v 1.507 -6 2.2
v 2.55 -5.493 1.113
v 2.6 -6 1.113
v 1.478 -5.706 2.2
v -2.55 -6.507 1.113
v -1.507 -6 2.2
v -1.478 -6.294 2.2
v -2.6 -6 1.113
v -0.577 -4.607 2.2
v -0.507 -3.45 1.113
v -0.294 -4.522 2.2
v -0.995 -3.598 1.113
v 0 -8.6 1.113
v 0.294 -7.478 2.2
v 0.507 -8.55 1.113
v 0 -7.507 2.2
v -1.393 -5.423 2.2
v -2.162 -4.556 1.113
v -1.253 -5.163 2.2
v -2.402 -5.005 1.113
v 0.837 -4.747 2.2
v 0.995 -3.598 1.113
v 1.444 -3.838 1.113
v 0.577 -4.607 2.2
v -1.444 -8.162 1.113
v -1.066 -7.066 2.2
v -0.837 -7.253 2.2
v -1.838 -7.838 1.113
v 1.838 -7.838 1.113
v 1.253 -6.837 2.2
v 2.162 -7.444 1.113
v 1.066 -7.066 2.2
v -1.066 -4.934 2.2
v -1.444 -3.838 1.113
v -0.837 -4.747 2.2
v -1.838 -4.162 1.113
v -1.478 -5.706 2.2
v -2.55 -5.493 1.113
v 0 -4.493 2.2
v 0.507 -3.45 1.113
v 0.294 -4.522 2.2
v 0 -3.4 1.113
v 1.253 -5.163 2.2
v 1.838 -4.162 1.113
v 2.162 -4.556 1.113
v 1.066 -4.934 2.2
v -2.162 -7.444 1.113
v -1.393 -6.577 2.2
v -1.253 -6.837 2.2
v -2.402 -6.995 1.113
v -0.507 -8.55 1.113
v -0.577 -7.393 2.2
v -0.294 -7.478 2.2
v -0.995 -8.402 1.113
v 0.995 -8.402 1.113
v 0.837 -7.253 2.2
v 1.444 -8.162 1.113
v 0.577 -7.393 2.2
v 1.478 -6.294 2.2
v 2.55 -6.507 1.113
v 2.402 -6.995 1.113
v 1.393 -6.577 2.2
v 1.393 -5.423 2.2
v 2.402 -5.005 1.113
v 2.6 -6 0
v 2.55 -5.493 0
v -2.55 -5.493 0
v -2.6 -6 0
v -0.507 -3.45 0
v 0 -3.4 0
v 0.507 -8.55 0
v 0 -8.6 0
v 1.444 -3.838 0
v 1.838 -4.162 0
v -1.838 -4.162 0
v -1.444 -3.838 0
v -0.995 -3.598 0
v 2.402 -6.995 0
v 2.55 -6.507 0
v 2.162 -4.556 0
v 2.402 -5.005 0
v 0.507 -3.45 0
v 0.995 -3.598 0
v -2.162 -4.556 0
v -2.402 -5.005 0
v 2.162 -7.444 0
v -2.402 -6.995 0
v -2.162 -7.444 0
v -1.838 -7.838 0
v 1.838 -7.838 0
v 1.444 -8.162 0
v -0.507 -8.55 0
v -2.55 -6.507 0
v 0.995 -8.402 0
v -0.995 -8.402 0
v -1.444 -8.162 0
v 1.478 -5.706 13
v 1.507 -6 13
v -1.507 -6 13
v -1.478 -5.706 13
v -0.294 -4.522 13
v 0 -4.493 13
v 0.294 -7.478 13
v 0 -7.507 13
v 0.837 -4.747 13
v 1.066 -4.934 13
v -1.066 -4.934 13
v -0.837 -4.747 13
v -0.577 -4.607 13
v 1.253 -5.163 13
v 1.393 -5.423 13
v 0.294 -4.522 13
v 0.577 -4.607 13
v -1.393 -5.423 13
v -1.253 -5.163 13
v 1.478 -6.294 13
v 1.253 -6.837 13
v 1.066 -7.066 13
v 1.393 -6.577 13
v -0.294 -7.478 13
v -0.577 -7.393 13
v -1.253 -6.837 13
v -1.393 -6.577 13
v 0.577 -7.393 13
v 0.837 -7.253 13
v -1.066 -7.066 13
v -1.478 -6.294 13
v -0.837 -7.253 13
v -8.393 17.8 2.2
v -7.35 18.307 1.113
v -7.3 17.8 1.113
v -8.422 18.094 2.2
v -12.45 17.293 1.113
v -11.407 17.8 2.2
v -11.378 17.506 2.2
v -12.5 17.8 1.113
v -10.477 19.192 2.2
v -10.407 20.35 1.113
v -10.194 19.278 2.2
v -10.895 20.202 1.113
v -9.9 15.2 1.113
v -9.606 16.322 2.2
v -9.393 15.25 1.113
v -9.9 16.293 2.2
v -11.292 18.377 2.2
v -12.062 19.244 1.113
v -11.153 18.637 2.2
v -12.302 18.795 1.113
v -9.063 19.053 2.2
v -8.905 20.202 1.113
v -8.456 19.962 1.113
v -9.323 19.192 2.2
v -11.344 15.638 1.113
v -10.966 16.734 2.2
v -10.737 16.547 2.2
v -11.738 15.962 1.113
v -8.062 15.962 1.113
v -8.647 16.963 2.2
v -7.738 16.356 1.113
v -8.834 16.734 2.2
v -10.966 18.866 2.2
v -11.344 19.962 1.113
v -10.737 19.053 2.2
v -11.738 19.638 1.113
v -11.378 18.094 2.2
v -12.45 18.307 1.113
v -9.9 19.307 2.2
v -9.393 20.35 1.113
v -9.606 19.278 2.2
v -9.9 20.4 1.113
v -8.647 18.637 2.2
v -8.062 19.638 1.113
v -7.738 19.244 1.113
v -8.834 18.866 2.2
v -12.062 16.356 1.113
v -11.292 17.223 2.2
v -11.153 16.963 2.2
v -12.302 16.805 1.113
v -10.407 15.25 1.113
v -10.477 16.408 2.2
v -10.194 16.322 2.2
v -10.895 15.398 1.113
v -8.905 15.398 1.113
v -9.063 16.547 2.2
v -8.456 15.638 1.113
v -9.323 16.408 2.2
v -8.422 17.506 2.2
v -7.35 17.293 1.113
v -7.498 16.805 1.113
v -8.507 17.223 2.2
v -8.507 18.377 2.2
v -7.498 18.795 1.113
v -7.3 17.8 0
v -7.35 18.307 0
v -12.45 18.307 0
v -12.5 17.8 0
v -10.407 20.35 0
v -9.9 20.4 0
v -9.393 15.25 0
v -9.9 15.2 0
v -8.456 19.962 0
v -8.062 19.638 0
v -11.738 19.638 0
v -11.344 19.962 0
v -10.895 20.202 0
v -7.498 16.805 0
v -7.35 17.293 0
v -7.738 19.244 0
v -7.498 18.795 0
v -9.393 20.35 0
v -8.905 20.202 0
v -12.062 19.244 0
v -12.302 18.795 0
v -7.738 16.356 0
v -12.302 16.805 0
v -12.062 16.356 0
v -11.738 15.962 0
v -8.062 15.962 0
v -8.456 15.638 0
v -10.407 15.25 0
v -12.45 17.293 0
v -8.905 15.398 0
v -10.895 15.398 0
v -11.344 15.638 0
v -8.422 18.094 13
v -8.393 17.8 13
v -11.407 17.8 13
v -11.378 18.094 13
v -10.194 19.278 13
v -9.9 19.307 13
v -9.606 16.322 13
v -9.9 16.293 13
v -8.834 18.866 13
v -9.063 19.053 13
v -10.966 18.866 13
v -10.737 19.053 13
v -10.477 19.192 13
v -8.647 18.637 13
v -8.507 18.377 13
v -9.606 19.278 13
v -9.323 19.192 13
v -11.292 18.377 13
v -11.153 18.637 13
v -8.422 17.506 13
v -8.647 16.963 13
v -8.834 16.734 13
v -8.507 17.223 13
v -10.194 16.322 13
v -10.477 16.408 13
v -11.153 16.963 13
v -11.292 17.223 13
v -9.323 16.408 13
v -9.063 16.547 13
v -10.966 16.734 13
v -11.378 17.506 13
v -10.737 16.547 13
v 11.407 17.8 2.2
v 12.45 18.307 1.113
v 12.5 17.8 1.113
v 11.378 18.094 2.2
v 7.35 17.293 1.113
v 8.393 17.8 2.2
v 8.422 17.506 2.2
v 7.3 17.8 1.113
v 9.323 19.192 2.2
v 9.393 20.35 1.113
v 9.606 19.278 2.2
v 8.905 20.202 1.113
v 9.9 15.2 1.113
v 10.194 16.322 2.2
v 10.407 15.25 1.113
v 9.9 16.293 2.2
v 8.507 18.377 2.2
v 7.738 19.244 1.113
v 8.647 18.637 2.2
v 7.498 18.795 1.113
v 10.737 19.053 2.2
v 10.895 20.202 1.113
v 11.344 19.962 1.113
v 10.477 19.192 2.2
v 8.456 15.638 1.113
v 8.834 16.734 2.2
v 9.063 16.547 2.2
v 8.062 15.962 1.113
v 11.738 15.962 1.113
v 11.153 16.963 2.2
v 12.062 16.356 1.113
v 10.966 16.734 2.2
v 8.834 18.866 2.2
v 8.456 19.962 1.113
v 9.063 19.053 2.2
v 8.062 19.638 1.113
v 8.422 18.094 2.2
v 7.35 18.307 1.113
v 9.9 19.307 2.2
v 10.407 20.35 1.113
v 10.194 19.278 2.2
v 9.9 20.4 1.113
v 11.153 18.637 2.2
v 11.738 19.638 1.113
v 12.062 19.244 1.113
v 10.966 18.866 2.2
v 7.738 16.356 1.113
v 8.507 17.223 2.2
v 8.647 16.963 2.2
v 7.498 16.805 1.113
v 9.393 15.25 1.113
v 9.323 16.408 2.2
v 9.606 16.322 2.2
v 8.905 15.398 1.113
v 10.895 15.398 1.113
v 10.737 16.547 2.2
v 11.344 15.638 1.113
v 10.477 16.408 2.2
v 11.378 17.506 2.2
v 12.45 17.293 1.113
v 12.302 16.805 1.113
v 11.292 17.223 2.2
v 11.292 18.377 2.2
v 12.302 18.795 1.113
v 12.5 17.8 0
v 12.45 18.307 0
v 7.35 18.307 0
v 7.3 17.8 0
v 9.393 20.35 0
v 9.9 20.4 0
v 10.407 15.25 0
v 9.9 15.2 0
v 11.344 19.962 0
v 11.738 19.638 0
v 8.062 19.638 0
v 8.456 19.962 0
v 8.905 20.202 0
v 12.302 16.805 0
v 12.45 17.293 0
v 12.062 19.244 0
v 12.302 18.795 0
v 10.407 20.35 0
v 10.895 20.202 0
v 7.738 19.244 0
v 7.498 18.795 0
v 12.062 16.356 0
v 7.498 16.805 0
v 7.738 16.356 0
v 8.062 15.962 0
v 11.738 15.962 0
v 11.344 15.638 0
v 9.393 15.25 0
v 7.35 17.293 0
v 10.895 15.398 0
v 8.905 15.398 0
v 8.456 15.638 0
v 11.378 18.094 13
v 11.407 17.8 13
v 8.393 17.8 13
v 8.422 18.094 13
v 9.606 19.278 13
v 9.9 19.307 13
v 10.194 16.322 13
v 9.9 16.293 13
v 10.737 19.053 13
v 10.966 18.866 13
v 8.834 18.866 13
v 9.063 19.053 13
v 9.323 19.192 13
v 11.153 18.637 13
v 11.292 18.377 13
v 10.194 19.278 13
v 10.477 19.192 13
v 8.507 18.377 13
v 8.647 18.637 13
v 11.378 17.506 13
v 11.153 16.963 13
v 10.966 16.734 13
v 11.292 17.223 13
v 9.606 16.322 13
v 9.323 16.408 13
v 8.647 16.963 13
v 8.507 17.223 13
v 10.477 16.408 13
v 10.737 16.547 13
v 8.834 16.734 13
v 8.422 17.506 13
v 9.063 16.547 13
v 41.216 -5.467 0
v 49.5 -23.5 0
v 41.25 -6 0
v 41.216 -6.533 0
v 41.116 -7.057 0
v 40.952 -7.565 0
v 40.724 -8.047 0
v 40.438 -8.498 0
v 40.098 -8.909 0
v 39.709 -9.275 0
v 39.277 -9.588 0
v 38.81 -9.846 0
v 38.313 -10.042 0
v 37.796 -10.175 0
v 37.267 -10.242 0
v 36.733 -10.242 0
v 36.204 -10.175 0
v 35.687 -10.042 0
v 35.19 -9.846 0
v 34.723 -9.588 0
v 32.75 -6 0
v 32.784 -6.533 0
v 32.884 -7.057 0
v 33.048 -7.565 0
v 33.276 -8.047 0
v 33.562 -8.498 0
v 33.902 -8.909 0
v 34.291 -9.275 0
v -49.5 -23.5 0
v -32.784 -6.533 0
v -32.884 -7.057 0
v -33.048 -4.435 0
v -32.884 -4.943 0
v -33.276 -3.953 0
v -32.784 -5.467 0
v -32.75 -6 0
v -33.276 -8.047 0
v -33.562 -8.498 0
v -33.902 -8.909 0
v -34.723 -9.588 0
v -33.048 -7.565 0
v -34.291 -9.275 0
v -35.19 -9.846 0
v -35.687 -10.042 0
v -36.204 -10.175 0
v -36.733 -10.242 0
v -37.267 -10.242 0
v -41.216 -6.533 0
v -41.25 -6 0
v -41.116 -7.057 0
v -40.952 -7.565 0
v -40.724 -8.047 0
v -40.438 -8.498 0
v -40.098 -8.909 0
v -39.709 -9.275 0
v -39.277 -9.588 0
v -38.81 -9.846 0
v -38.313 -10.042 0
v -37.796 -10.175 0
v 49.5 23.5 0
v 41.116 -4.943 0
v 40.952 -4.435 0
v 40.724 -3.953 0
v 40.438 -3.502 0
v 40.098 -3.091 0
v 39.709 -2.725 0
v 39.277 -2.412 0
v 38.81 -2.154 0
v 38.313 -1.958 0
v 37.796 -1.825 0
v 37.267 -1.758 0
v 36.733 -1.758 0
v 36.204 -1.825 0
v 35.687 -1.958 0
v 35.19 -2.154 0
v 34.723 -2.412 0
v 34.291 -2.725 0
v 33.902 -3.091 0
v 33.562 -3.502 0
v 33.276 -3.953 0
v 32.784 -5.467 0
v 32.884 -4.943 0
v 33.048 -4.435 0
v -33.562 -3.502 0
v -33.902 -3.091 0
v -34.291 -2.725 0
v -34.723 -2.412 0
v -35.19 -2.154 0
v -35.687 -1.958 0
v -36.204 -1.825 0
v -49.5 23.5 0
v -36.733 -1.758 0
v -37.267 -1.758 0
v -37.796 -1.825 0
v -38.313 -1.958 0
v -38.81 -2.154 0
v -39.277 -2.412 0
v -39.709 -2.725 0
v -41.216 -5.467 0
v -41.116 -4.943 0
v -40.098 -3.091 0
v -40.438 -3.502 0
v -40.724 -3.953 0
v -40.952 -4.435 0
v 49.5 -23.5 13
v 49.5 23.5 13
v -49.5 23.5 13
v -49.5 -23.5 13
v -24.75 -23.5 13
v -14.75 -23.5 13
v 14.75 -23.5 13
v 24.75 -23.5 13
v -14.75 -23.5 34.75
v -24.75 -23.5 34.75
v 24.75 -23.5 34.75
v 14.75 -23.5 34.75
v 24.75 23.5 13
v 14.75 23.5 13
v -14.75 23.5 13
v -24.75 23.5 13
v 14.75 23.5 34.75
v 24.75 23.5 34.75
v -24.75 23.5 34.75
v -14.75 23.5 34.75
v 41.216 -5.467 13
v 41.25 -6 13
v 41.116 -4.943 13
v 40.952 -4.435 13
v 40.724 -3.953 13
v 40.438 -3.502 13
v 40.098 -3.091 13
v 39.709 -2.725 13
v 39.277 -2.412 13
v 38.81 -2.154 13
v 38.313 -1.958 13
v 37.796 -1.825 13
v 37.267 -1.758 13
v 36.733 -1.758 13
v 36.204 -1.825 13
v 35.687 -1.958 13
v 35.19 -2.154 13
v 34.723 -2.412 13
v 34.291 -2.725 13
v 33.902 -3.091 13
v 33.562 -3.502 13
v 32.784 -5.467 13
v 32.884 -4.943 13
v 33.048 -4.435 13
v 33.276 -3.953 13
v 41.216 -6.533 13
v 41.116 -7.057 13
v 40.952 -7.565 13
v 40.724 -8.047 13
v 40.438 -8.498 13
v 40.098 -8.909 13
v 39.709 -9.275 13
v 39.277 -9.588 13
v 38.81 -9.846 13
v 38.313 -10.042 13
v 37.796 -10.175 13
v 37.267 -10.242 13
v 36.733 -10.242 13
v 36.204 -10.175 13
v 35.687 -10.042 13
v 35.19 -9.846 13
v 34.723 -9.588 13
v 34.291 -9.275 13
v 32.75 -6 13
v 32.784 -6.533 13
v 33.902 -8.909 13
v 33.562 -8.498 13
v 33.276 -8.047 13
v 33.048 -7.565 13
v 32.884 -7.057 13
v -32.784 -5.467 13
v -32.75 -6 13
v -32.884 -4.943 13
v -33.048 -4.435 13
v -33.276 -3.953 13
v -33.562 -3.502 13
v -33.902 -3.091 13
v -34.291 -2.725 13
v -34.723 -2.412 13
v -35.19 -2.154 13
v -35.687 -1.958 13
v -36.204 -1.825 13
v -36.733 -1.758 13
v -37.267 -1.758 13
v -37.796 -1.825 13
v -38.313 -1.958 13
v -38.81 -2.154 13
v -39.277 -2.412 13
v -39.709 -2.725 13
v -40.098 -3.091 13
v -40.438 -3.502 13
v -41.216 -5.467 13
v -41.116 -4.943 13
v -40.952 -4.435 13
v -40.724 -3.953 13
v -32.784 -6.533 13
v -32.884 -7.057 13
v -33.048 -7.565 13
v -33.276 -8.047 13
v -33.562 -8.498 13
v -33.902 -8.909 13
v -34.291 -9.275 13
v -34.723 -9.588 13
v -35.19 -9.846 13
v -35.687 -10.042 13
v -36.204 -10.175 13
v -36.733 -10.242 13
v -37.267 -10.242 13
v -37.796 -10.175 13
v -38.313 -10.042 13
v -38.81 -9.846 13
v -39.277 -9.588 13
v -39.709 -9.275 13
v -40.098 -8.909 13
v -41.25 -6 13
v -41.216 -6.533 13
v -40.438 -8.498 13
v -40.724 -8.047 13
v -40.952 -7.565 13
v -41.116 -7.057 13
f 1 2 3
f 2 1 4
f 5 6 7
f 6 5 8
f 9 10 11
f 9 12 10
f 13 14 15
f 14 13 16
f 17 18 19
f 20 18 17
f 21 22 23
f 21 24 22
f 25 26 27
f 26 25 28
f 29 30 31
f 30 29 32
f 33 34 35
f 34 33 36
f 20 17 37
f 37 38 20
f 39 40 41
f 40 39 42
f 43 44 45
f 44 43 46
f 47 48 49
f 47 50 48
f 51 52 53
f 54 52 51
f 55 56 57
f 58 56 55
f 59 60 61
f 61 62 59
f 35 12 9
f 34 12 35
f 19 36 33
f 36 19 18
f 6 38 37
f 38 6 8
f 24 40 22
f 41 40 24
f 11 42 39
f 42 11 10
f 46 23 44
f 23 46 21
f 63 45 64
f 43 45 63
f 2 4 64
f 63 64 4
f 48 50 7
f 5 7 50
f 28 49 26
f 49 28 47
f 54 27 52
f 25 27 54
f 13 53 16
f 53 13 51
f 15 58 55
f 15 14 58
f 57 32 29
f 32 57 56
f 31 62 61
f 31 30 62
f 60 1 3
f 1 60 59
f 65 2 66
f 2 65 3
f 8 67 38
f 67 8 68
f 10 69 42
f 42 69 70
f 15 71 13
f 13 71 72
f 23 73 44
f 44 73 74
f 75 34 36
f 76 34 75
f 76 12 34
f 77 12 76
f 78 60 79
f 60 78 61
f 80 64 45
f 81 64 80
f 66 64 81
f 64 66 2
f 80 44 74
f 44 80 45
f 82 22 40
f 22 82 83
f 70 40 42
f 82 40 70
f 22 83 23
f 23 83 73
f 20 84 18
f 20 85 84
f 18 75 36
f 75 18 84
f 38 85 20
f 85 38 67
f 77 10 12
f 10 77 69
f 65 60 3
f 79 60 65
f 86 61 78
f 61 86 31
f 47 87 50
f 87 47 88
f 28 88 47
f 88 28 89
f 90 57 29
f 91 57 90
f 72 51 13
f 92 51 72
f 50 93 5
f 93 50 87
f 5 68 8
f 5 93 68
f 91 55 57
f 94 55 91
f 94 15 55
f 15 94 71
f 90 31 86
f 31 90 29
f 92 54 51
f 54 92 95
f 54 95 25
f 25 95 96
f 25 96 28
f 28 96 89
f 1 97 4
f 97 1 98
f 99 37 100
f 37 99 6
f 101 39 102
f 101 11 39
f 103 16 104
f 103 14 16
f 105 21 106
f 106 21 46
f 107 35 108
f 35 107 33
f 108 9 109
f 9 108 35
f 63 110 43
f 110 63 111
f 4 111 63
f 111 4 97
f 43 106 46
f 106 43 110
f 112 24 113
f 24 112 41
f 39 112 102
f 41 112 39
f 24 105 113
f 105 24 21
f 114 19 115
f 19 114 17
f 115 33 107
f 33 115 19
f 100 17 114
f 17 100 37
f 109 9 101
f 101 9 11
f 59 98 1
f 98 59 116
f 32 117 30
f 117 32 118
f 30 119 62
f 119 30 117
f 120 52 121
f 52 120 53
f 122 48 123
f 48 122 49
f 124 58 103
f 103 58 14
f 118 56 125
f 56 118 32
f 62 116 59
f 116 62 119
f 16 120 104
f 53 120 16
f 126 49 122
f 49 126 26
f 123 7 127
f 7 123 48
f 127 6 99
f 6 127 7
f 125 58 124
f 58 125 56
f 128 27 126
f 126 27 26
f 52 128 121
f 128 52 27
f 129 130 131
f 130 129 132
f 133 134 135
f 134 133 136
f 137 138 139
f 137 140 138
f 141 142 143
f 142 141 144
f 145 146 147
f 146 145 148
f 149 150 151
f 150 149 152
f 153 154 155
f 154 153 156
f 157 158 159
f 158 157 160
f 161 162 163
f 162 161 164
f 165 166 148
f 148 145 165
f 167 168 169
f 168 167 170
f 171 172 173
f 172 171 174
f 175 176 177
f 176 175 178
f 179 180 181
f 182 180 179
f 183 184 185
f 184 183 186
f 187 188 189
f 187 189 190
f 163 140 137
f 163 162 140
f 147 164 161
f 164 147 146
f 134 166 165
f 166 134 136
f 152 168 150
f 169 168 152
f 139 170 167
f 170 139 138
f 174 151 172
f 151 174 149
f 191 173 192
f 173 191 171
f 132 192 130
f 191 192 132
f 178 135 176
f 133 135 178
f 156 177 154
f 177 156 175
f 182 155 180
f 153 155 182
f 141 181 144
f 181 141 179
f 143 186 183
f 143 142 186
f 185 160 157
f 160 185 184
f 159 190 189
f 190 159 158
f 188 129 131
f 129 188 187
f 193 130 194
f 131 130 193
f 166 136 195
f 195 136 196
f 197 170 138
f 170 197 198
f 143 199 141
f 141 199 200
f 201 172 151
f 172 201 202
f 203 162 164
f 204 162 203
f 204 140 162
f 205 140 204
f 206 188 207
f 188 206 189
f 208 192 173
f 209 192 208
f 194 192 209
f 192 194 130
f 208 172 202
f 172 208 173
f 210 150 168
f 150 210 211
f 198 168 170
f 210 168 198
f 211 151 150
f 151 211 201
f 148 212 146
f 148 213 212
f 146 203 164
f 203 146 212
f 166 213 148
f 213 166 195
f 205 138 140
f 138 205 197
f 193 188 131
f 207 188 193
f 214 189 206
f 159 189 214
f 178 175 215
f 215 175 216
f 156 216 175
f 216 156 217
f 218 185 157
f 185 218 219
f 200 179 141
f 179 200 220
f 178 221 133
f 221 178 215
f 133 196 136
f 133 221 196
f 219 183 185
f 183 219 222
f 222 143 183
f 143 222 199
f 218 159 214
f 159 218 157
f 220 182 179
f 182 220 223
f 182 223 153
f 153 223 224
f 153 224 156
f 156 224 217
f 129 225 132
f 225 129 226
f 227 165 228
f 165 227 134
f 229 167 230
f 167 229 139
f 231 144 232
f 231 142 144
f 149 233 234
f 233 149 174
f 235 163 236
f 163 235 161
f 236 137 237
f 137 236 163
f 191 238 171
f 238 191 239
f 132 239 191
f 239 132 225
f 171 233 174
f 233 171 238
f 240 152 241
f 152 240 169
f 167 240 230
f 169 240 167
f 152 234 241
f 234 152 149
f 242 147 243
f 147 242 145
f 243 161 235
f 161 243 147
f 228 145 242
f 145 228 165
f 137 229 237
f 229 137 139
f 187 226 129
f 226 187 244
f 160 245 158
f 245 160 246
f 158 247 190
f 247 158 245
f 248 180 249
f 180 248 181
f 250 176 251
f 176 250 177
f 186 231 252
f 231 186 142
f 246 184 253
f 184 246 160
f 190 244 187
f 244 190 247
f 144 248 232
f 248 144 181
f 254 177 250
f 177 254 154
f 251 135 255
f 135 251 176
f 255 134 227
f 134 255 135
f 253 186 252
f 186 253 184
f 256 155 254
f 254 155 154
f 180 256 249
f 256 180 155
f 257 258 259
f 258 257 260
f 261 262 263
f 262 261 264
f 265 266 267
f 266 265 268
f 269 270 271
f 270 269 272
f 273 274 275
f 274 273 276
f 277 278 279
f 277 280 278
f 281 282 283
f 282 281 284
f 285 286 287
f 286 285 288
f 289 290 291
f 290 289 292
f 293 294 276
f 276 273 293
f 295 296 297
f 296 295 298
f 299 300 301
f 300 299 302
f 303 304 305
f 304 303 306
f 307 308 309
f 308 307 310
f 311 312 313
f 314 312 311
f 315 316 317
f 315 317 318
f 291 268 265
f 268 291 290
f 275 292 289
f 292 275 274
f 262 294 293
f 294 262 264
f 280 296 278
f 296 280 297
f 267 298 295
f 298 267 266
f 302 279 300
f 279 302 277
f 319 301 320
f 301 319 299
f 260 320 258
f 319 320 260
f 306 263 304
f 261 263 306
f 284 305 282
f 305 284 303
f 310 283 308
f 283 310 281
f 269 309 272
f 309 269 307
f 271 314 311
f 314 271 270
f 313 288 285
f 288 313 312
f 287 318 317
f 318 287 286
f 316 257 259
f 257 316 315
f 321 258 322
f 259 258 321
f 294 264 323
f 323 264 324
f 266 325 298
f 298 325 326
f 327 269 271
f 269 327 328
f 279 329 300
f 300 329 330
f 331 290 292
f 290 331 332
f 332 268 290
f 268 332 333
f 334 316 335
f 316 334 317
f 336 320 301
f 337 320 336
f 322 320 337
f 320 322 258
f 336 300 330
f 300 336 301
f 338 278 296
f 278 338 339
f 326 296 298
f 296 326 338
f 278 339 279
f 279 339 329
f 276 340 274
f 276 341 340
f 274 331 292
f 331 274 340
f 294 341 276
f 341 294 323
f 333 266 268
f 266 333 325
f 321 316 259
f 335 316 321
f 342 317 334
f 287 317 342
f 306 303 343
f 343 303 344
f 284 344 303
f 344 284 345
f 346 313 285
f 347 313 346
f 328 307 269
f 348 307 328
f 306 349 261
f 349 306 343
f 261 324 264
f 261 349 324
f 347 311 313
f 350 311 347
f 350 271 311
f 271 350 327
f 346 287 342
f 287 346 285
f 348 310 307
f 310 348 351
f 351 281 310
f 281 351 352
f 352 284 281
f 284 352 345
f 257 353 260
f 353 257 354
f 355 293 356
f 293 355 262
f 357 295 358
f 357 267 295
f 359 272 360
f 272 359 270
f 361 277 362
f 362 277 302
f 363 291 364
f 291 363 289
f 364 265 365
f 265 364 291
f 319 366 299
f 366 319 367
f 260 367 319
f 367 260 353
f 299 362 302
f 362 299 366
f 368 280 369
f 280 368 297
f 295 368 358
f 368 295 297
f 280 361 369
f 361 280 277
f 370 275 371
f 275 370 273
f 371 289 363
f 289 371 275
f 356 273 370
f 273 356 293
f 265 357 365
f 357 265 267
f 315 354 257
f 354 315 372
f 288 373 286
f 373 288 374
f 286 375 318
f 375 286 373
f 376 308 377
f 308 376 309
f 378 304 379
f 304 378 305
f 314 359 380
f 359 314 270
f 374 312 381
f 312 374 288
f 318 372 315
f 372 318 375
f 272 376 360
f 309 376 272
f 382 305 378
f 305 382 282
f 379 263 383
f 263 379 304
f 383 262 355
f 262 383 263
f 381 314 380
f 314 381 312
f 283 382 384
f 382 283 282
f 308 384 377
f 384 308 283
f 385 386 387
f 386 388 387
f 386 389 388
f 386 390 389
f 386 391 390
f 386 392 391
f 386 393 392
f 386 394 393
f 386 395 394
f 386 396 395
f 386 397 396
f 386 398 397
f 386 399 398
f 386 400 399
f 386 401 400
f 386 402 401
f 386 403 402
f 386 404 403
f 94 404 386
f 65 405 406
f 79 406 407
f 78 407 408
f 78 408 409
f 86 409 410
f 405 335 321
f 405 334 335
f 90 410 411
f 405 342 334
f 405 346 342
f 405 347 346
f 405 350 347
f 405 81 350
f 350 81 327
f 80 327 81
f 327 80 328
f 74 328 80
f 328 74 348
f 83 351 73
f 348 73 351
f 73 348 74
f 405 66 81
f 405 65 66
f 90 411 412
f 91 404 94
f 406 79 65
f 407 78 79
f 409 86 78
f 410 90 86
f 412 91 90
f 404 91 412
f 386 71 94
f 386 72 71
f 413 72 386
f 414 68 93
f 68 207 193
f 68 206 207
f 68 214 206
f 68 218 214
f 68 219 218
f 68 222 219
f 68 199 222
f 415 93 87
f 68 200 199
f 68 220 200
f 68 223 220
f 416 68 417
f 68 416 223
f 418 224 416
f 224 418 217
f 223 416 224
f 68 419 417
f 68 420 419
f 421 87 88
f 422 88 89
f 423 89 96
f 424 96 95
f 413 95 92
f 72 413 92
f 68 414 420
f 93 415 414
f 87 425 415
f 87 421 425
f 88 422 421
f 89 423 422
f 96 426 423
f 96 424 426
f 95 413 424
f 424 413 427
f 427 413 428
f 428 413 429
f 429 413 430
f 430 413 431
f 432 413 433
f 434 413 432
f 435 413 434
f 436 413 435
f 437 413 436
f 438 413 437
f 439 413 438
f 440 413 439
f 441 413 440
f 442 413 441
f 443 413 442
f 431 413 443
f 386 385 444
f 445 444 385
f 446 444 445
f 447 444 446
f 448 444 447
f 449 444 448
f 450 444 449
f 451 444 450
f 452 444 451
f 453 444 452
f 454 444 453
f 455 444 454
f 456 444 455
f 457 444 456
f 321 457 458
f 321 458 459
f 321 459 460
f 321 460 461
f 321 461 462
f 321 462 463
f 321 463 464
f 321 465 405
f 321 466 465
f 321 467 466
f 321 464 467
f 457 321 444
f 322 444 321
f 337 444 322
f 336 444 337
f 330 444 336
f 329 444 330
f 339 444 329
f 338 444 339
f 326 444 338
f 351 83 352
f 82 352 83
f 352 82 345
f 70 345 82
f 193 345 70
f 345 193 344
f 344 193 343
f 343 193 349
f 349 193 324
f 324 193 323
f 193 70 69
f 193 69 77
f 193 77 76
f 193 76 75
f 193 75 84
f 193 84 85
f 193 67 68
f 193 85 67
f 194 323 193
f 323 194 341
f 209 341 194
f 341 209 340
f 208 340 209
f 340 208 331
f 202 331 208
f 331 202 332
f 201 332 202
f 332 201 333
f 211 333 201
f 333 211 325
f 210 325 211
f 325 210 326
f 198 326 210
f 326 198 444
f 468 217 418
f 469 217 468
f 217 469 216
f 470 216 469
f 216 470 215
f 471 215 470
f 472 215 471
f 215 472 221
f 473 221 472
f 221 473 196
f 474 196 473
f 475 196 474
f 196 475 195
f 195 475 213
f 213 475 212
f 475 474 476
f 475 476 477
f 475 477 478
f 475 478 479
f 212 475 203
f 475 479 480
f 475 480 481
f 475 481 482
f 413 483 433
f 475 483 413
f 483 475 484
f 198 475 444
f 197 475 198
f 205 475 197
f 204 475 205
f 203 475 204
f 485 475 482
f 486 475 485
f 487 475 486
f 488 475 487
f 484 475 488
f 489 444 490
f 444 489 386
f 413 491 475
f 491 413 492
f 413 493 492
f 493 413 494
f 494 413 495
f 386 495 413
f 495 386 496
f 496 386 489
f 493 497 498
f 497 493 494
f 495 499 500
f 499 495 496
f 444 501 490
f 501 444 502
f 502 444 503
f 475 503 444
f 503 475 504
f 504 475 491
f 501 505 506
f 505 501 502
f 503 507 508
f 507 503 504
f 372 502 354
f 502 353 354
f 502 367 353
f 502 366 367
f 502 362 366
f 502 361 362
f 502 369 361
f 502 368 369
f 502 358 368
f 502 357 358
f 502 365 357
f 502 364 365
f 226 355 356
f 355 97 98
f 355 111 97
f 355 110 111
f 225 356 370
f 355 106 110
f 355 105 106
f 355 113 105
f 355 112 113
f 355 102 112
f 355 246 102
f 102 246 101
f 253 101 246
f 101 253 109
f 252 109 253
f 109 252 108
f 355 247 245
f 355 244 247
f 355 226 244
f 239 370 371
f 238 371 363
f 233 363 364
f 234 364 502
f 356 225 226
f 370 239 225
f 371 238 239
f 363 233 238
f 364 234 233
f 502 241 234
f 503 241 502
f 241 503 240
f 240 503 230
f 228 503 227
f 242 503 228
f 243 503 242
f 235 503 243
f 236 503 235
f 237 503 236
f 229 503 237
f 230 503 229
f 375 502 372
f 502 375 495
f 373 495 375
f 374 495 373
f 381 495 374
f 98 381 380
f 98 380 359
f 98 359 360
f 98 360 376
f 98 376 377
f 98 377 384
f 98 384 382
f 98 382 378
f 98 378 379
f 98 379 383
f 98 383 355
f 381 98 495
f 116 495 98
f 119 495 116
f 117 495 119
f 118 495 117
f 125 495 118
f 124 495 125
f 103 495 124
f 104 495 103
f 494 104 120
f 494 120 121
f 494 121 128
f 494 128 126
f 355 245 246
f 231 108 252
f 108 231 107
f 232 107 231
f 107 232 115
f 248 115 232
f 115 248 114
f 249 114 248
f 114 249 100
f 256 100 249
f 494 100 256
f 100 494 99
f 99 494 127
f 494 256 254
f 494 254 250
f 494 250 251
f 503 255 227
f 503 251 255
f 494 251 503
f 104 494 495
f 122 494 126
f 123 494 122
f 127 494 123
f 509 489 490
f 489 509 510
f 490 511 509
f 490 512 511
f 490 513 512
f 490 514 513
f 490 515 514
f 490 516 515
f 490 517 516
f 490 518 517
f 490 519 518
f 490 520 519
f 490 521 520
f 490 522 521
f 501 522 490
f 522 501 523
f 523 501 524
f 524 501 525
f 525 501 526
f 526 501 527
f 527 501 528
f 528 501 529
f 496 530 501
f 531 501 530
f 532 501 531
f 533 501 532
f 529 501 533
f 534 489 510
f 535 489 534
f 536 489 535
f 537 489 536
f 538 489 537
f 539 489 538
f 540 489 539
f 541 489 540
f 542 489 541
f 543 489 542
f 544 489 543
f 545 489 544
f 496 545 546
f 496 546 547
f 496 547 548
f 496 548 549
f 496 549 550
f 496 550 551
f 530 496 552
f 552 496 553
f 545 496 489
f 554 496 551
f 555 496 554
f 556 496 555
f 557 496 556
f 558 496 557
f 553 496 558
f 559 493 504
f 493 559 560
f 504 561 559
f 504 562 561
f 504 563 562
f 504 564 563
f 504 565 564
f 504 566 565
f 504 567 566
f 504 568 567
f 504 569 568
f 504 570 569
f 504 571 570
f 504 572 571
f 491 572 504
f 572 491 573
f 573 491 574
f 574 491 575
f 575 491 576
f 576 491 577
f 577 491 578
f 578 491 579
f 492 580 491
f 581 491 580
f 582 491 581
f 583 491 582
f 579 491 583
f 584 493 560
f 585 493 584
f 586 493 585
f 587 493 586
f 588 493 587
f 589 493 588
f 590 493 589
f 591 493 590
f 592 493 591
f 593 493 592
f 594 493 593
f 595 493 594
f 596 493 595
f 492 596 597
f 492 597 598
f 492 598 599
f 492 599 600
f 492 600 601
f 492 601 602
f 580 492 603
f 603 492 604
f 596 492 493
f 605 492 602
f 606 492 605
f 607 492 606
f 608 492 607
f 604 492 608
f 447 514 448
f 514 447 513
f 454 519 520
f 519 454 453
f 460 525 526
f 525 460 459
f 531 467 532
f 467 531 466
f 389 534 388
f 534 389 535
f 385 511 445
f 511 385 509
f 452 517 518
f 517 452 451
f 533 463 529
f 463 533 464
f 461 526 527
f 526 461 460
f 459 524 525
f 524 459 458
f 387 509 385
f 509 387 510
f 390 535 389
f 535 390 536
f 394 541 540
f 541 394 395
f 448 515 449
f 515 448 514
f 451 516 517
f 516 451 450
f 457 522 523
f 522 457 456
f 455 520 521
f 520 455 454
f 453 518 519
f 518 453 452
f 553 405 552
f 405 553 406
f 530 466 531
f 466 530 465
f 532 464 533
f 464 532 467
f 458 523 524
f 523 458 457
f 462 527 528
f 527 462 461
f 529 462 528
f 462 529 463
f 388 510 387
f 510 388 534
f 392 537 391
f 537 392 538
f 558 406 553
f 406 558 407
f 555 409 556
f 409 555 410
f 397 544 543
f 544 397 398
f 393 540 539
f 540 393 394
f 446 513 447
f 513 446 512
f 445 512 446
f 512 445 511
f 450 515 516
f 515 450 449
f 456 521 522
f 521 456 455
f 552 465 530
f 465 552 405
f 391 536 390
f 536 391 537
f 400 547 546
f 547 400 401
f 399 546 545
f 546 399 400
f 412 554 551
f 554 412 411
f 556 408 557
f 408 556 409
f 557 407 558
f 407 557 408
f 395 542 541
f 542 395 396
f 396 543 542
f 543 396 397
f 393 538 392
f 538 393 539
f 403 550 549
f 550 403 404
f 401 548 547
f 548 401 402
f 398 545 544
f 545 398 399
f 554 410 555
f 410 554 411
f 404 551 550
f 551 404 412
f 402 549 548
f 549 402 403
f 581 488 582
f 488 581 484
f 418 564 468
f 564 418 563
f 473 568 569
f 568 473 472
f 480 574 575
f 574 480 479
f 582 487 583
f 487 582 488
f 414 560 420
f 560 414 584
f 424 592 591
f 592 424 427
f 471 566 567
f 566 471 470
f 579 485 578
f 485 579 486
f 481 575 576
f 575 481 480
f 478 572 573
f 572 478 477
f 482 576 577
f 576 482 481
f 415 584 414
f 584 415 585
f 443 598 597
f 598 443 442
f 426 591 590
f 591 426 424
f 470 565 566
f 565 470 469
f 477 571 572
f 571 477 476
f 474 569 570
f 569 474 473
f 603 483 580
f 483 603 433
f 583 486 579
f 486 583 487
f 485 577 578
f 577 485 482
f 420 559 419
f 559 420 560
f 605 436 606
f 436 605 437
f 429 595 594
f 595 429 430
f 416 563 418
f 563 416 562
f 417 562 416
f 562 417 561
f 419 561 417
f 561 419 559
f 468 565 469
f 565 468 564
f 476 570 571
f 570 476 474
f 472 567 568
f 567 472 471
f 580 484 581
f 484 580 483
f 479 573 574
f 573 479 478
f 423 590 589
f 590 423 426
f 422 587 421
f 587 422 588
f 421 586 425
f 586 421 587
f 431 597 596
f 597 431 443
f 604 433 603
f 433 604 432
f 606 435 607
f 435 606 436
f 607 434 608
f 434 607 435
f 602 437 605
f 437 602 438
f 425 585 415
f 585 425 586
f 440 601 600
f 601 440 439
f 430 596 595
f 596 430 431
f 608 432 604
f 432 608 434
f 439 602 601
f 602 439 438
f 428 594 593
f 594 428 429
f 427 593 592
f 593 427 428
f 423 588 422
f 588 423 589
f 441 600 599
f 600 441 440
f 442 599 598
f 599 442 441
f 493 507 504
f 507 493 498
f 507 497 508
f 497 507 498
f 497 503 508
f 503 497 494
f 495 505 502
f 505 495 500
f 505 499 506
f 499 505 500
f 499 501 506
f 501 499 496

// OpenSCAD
// include external resources
include <screw_holes.scad>

// IPB-CAR Camera holder
$fn=50;
tol = 0.5;

// camera params
camLength = 42;
camWidth = 29;
camHeight = 29;
wallThickness = 10;
wallHeight = 0.75*camHeight;
camHole1OffY = camLength/2 - 15; 
camHole2OffY = camLength/2 - 3.2;
camHole2OffX = camWidth/2 -4.6;

// plate params
plateHandleLength = 25;
plateLength = camWidth + 2*wallThickness + 2*plateHandleLength;
plateWidth = camLength+5;
plateThickness = 13;
mountHoleDia = 8.5; // M8 screws
mountHoleOff = plateHandleLength/2;

// M3 screw params
screwTopWidth = 5;
screwTopHeight = 2;
screwAngle = 90;

// base plate
difference(){

    //plate    
    linear_extrude(plateThickness){
        square([plateLength, plateWidth], center = true);
    }

    // holes for mounting to Alu-profile
    translate([plateLength/2-mountHoleOff, -camHole1OffY, 0])  cylinder(h=plateThickness,d=mountHoleDia);
    translate([-plateLength/2+mountHoleOff, -camHole1OffY, 0]) cylinder(h=plateThickness, d=mountHoleDia);

    // holes for mounting camera
    translate([0, -camHole1OffY, 0]) screw_hole([5, 2, 90], M3, plateThickness);
    translate([-camHole2OffX,  camHole2OffY, 0]) screw_hole([screwTopWidth, screwTopHeight, screwAngle], M3, plateThickness);
    translate([camHole2OffX,  camHole2OffY, 0]) screw_hole([5, 2, 90], M3, plateThickness);
}

// walls for camera
translate([-(camWidth+wallThickness+tol)/2,0,plateThickness+wallHeight/2]) cube([wallThickness,plateWidth,wallHeight], center=true);
translate([(camWidth+wallThickness+tol)/2,0,plateThickness+wallHeight/2]) cube([wallThickness,plateWidth,wallHeight], center=true);
